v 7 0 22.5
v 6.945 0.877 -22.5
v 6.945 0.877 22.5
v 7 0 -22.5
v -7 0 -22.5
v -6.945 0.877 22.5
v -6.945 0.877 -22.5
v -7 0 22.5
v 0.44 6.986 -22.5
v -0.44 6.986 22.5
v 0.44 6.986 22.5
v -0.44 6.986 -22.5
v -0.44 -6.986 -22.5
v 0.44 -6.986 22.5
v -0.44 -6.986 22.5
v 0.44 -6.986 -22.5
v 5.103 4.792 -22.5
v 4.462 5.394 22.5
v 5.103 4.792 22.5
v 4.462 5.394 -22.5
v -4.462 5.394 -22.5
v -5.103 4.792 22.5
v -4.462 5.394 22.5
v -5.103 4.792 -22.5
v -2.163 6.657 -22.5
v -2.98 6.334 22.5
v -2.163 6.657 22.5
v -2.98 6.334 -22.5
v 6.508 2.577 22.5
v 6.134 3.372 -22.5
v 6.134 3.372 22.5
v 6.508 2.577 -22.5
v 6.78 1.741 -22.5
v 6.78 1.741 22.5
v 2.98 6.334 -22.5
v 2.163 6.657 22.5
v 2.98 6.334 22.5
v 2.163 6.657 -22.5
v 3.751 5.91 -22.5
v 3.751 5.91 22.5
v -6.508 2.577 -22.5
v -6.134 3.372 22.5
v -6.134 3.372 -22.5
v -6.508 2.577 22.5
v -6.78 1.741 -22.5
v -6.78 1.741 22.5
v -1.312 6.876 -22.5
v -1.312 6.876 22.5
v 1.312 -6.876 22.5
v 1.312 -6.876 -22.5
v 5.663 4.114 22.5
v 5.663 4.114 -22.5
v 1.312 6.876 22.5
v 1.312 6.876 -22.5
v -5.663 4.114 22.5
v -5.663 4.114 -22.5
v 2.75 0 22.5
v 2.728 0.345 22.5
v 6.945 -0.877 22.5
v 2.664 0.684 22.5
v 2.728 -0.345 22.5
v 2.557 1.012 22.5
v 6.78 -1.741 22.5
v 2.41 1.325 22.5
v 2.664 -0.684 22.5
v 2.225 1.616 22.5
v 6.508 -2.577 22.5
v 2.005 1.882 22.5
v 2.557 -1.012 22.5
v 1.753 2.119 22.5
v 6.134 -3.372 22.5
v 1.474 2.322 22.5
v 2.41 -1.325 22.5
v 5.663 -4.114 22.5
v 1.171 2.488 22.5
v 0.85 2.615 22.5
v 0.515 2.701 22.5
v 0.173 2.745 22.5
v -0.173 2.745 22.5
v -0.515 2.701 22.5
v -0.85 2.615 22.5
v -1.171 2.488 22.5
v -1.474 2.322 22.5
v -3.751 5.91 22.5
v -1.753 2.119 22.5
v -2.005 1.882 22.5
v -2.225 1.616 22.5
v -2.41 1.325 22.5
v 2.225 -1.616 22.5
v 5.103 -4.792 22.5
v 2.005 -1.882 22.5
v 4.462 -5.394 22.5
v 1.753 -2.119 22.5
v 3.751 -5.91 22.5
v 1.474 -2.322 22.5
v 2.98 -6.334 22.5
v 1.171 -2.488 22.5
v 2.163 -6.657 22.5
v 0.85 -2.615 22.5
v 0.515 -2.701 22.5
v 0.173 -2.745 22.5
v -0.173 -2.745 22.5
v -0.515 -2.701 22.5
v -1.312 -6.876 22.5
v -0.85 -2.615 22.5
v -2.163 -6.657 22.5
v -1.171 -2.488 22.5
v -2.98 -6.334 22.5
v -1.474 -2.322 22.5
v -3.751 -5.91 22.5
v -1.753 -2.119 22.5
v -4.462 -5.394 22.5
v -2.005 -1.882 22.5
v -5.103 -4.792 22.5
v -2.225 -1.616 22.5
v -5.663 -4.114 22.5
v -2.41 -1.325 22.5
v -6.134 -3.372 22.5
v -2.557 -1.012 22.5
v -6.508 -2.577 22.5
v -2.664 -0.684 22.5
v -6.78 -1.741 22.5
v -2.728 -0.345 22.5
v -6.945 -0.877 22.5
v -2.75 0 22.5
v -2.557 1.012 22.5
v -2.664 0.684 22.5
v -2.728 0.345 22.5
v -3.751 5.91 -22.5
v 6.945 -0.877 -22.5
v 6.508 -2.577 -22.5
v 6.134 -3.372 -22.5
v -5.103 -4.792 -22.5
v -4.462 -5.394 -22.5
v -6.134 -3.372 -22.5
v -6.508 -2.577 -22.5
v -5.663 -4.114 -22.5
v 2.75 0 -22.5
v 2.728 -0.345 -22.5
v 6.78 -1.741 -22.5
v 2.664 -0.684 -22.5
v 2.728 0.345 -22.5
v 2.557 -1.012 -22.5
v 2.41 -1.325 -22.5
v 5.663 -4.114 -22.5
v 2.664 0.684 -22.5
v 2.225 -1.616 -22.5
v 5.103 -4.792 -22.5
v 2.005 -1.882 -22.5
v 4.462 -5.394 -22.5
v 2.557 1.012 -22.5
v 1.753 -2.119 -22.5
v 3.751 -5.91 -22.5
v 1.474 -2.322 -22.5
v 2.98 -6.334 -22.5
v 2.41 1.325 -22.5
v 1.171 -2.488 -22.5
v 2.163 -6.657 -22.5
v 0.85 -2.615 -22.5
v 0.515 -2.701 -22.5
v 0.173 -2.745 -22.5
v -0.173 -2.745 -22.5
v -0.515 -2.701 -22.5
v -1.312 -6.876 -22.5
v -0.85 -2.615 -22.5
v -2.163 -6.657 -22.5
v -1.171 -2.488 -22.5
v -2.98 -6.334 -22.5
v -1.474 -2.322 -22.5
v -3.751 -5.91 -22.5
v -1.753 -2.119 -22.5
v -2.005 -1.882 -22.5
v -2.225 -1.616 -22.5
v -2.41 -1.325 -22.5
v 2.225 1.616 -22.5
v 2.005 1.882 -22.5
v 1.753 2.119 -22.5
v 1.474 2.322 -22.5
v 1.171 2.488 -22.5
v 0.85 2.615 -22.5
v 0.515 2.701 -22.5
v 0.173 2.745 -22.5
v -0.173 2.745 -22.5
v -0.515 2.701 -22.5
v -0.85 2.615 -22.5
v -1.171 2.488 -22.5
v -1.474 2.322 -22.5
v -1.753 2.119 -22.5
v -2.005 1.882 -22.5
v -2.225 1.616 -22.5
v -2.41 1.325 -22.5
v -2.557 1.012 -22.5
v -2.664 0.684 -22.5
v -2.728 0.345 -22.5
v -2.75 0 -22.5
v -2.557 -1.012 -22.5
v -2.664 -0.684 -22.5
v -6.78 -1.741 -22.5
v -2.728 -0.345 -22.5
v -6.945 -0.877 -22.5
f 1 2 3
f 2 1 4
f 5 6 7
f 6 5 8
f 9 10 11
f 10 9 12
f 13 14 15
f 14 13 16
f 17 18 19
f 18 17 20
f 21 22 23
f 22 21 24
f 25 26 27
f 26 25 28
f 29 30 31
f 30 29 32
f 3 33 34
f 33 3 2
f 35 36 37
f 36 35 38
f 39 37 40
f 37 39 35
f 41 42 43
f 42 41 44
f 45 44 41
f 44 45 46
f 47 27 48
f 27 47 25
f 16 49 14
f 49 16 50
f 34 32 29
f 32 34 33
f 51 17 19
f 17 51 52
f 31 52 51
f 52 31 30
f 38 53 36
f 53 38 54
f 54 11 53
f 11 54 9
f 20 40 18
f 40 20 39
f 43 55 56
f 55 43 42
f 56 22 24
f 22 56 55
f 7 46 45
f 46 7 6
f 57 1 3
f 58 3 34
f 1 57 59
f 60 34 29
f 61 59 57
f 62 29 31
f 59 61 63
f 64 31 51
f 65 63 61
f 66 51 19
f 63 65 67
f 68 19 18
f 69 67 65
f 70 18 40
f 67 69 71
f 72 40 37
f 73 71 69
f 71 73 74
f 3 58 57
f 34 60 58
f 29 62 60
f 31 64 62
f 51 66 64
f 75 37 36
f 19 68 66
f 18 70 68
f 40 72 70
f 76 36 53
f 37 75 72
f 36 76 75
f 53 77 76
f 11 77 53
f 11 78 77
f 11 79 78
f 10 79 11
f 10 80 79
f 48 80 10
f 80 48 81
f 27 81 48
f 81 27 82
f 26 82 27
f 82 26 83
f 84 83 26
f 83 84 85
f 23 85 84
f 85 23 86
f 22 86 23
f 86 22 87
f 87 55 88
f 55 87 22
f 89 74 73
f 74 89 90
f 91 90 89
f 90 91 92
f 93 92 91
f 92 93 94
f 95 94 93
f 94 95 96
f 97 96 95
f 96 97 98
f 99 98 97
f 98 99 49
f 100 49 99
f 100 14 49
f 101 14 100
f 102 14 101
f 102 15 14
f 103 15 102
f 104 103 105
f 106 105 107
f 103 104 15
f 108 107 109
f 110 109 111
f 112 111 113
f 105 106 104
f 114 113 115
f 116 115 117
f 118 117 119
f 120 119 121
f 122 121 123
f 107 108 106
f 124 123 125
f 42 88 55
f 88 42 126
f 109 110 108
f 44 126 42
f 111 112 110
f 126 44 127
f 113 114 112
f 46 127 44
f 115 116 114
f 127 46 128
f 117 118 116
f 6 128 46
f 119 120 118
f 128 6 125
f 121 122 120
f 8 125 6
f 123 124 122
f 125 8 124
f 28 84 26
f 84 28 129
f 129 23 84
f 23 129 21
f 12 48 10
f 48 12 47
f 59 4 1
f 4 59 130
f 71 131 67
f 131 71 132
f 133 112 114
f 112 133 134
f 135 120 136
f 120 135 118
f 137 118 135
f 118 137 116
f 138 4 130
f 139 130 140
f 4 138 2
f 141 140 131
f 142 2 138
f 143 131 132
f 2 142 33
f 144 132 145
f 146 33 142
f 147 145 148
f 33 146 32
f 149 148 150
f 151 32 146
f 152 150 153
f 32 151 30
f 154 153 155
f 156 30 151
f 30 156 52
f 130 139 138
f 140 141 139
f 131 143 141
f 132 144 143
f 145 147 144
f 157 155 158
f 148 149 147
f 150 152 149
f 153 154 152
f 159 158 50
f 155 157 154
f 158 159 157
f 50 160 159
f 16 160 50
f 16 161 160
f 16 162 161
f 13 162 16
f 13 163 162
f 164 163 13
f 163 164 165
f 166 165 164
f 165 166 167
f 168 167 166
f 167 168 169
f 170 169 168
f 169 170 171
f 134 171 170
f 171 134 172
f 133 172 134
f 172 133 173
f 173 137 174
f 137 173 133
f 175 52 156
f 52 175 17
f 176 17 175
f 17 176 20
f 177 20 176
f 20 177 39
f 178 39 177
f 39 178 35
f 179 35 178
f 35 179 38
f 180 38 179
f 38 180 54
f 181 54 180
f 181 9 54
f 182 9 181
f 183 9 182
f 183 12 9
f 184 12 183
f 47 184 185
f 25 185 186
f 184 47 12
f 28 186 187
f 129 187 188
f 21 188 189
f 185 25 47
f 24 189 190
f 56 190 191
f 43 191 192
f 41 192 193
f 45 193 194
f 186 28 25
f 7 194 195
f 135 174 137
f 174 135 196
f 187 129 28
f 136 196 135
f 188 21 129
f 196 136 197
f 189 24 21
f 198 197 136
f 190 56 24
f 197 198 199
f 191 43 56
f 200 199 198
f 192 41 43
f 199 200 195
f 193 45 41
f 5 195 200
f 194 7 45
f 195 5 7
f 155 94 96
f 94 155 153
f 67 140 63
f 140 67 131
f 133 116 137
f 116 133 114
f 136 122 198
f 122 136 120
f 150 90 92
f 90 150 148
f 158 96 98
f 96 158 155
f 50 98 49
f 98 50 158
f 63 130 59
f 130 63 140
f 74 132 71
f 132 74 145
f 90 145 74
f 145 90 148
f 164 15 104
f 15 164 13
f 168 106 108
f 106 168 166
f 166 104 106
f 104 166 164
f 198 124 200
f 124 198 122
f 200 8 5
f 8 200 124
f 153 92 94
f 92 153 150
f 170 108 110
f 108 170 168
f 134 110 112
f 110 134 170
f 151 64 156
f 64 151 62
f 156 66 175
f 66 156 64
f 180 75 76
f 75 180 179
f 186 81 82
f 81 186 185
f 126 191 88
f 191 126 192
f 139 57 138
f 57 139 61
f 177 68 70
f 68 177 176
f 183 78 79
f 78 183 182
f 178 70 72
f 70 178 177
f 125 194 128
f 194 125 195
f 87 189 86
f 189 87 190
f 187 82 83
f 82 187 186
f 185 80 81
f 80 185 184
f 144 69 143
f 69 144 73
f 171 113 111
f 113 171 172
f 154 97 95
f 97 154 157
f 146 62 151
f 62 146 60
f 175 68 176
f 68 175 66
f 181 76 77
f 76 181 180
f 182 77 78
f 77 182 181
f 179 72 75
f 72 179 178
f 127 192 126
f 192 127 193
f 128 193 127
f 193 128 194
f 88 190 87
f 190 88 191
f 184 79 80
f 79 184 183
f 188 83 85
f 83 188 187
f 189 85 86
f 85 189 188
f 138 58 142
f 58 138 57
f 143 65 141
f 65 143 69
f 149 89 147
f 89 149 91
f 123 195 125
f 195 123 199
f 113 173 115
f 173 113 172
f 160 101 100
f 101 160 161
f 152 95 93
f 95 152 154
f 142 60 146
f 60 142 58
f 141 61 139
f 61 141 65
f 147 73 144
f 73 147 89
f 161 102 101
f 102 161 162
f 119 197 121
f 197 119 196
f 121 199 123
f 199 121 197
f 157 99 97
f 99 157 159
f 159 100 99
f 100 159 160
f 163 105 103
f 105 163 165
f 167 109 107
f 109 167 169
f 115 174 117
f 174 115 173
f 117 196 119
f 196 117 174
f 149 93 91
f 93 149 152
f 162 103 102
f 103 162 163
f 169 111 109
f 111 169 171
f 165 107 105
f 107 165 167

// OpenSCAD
$fn = 50;


difference() {
	union() {
		translate(v = [0, 0, -22.5000000000]) {
			cylinder(h = 45, r = 7.0000000000);
		}
	}
	union() {
		translate(v = [0, 0, -100.0000000000]) {
			cylinder(h = 200, r = 2.7500000000);
		}
	}
}
